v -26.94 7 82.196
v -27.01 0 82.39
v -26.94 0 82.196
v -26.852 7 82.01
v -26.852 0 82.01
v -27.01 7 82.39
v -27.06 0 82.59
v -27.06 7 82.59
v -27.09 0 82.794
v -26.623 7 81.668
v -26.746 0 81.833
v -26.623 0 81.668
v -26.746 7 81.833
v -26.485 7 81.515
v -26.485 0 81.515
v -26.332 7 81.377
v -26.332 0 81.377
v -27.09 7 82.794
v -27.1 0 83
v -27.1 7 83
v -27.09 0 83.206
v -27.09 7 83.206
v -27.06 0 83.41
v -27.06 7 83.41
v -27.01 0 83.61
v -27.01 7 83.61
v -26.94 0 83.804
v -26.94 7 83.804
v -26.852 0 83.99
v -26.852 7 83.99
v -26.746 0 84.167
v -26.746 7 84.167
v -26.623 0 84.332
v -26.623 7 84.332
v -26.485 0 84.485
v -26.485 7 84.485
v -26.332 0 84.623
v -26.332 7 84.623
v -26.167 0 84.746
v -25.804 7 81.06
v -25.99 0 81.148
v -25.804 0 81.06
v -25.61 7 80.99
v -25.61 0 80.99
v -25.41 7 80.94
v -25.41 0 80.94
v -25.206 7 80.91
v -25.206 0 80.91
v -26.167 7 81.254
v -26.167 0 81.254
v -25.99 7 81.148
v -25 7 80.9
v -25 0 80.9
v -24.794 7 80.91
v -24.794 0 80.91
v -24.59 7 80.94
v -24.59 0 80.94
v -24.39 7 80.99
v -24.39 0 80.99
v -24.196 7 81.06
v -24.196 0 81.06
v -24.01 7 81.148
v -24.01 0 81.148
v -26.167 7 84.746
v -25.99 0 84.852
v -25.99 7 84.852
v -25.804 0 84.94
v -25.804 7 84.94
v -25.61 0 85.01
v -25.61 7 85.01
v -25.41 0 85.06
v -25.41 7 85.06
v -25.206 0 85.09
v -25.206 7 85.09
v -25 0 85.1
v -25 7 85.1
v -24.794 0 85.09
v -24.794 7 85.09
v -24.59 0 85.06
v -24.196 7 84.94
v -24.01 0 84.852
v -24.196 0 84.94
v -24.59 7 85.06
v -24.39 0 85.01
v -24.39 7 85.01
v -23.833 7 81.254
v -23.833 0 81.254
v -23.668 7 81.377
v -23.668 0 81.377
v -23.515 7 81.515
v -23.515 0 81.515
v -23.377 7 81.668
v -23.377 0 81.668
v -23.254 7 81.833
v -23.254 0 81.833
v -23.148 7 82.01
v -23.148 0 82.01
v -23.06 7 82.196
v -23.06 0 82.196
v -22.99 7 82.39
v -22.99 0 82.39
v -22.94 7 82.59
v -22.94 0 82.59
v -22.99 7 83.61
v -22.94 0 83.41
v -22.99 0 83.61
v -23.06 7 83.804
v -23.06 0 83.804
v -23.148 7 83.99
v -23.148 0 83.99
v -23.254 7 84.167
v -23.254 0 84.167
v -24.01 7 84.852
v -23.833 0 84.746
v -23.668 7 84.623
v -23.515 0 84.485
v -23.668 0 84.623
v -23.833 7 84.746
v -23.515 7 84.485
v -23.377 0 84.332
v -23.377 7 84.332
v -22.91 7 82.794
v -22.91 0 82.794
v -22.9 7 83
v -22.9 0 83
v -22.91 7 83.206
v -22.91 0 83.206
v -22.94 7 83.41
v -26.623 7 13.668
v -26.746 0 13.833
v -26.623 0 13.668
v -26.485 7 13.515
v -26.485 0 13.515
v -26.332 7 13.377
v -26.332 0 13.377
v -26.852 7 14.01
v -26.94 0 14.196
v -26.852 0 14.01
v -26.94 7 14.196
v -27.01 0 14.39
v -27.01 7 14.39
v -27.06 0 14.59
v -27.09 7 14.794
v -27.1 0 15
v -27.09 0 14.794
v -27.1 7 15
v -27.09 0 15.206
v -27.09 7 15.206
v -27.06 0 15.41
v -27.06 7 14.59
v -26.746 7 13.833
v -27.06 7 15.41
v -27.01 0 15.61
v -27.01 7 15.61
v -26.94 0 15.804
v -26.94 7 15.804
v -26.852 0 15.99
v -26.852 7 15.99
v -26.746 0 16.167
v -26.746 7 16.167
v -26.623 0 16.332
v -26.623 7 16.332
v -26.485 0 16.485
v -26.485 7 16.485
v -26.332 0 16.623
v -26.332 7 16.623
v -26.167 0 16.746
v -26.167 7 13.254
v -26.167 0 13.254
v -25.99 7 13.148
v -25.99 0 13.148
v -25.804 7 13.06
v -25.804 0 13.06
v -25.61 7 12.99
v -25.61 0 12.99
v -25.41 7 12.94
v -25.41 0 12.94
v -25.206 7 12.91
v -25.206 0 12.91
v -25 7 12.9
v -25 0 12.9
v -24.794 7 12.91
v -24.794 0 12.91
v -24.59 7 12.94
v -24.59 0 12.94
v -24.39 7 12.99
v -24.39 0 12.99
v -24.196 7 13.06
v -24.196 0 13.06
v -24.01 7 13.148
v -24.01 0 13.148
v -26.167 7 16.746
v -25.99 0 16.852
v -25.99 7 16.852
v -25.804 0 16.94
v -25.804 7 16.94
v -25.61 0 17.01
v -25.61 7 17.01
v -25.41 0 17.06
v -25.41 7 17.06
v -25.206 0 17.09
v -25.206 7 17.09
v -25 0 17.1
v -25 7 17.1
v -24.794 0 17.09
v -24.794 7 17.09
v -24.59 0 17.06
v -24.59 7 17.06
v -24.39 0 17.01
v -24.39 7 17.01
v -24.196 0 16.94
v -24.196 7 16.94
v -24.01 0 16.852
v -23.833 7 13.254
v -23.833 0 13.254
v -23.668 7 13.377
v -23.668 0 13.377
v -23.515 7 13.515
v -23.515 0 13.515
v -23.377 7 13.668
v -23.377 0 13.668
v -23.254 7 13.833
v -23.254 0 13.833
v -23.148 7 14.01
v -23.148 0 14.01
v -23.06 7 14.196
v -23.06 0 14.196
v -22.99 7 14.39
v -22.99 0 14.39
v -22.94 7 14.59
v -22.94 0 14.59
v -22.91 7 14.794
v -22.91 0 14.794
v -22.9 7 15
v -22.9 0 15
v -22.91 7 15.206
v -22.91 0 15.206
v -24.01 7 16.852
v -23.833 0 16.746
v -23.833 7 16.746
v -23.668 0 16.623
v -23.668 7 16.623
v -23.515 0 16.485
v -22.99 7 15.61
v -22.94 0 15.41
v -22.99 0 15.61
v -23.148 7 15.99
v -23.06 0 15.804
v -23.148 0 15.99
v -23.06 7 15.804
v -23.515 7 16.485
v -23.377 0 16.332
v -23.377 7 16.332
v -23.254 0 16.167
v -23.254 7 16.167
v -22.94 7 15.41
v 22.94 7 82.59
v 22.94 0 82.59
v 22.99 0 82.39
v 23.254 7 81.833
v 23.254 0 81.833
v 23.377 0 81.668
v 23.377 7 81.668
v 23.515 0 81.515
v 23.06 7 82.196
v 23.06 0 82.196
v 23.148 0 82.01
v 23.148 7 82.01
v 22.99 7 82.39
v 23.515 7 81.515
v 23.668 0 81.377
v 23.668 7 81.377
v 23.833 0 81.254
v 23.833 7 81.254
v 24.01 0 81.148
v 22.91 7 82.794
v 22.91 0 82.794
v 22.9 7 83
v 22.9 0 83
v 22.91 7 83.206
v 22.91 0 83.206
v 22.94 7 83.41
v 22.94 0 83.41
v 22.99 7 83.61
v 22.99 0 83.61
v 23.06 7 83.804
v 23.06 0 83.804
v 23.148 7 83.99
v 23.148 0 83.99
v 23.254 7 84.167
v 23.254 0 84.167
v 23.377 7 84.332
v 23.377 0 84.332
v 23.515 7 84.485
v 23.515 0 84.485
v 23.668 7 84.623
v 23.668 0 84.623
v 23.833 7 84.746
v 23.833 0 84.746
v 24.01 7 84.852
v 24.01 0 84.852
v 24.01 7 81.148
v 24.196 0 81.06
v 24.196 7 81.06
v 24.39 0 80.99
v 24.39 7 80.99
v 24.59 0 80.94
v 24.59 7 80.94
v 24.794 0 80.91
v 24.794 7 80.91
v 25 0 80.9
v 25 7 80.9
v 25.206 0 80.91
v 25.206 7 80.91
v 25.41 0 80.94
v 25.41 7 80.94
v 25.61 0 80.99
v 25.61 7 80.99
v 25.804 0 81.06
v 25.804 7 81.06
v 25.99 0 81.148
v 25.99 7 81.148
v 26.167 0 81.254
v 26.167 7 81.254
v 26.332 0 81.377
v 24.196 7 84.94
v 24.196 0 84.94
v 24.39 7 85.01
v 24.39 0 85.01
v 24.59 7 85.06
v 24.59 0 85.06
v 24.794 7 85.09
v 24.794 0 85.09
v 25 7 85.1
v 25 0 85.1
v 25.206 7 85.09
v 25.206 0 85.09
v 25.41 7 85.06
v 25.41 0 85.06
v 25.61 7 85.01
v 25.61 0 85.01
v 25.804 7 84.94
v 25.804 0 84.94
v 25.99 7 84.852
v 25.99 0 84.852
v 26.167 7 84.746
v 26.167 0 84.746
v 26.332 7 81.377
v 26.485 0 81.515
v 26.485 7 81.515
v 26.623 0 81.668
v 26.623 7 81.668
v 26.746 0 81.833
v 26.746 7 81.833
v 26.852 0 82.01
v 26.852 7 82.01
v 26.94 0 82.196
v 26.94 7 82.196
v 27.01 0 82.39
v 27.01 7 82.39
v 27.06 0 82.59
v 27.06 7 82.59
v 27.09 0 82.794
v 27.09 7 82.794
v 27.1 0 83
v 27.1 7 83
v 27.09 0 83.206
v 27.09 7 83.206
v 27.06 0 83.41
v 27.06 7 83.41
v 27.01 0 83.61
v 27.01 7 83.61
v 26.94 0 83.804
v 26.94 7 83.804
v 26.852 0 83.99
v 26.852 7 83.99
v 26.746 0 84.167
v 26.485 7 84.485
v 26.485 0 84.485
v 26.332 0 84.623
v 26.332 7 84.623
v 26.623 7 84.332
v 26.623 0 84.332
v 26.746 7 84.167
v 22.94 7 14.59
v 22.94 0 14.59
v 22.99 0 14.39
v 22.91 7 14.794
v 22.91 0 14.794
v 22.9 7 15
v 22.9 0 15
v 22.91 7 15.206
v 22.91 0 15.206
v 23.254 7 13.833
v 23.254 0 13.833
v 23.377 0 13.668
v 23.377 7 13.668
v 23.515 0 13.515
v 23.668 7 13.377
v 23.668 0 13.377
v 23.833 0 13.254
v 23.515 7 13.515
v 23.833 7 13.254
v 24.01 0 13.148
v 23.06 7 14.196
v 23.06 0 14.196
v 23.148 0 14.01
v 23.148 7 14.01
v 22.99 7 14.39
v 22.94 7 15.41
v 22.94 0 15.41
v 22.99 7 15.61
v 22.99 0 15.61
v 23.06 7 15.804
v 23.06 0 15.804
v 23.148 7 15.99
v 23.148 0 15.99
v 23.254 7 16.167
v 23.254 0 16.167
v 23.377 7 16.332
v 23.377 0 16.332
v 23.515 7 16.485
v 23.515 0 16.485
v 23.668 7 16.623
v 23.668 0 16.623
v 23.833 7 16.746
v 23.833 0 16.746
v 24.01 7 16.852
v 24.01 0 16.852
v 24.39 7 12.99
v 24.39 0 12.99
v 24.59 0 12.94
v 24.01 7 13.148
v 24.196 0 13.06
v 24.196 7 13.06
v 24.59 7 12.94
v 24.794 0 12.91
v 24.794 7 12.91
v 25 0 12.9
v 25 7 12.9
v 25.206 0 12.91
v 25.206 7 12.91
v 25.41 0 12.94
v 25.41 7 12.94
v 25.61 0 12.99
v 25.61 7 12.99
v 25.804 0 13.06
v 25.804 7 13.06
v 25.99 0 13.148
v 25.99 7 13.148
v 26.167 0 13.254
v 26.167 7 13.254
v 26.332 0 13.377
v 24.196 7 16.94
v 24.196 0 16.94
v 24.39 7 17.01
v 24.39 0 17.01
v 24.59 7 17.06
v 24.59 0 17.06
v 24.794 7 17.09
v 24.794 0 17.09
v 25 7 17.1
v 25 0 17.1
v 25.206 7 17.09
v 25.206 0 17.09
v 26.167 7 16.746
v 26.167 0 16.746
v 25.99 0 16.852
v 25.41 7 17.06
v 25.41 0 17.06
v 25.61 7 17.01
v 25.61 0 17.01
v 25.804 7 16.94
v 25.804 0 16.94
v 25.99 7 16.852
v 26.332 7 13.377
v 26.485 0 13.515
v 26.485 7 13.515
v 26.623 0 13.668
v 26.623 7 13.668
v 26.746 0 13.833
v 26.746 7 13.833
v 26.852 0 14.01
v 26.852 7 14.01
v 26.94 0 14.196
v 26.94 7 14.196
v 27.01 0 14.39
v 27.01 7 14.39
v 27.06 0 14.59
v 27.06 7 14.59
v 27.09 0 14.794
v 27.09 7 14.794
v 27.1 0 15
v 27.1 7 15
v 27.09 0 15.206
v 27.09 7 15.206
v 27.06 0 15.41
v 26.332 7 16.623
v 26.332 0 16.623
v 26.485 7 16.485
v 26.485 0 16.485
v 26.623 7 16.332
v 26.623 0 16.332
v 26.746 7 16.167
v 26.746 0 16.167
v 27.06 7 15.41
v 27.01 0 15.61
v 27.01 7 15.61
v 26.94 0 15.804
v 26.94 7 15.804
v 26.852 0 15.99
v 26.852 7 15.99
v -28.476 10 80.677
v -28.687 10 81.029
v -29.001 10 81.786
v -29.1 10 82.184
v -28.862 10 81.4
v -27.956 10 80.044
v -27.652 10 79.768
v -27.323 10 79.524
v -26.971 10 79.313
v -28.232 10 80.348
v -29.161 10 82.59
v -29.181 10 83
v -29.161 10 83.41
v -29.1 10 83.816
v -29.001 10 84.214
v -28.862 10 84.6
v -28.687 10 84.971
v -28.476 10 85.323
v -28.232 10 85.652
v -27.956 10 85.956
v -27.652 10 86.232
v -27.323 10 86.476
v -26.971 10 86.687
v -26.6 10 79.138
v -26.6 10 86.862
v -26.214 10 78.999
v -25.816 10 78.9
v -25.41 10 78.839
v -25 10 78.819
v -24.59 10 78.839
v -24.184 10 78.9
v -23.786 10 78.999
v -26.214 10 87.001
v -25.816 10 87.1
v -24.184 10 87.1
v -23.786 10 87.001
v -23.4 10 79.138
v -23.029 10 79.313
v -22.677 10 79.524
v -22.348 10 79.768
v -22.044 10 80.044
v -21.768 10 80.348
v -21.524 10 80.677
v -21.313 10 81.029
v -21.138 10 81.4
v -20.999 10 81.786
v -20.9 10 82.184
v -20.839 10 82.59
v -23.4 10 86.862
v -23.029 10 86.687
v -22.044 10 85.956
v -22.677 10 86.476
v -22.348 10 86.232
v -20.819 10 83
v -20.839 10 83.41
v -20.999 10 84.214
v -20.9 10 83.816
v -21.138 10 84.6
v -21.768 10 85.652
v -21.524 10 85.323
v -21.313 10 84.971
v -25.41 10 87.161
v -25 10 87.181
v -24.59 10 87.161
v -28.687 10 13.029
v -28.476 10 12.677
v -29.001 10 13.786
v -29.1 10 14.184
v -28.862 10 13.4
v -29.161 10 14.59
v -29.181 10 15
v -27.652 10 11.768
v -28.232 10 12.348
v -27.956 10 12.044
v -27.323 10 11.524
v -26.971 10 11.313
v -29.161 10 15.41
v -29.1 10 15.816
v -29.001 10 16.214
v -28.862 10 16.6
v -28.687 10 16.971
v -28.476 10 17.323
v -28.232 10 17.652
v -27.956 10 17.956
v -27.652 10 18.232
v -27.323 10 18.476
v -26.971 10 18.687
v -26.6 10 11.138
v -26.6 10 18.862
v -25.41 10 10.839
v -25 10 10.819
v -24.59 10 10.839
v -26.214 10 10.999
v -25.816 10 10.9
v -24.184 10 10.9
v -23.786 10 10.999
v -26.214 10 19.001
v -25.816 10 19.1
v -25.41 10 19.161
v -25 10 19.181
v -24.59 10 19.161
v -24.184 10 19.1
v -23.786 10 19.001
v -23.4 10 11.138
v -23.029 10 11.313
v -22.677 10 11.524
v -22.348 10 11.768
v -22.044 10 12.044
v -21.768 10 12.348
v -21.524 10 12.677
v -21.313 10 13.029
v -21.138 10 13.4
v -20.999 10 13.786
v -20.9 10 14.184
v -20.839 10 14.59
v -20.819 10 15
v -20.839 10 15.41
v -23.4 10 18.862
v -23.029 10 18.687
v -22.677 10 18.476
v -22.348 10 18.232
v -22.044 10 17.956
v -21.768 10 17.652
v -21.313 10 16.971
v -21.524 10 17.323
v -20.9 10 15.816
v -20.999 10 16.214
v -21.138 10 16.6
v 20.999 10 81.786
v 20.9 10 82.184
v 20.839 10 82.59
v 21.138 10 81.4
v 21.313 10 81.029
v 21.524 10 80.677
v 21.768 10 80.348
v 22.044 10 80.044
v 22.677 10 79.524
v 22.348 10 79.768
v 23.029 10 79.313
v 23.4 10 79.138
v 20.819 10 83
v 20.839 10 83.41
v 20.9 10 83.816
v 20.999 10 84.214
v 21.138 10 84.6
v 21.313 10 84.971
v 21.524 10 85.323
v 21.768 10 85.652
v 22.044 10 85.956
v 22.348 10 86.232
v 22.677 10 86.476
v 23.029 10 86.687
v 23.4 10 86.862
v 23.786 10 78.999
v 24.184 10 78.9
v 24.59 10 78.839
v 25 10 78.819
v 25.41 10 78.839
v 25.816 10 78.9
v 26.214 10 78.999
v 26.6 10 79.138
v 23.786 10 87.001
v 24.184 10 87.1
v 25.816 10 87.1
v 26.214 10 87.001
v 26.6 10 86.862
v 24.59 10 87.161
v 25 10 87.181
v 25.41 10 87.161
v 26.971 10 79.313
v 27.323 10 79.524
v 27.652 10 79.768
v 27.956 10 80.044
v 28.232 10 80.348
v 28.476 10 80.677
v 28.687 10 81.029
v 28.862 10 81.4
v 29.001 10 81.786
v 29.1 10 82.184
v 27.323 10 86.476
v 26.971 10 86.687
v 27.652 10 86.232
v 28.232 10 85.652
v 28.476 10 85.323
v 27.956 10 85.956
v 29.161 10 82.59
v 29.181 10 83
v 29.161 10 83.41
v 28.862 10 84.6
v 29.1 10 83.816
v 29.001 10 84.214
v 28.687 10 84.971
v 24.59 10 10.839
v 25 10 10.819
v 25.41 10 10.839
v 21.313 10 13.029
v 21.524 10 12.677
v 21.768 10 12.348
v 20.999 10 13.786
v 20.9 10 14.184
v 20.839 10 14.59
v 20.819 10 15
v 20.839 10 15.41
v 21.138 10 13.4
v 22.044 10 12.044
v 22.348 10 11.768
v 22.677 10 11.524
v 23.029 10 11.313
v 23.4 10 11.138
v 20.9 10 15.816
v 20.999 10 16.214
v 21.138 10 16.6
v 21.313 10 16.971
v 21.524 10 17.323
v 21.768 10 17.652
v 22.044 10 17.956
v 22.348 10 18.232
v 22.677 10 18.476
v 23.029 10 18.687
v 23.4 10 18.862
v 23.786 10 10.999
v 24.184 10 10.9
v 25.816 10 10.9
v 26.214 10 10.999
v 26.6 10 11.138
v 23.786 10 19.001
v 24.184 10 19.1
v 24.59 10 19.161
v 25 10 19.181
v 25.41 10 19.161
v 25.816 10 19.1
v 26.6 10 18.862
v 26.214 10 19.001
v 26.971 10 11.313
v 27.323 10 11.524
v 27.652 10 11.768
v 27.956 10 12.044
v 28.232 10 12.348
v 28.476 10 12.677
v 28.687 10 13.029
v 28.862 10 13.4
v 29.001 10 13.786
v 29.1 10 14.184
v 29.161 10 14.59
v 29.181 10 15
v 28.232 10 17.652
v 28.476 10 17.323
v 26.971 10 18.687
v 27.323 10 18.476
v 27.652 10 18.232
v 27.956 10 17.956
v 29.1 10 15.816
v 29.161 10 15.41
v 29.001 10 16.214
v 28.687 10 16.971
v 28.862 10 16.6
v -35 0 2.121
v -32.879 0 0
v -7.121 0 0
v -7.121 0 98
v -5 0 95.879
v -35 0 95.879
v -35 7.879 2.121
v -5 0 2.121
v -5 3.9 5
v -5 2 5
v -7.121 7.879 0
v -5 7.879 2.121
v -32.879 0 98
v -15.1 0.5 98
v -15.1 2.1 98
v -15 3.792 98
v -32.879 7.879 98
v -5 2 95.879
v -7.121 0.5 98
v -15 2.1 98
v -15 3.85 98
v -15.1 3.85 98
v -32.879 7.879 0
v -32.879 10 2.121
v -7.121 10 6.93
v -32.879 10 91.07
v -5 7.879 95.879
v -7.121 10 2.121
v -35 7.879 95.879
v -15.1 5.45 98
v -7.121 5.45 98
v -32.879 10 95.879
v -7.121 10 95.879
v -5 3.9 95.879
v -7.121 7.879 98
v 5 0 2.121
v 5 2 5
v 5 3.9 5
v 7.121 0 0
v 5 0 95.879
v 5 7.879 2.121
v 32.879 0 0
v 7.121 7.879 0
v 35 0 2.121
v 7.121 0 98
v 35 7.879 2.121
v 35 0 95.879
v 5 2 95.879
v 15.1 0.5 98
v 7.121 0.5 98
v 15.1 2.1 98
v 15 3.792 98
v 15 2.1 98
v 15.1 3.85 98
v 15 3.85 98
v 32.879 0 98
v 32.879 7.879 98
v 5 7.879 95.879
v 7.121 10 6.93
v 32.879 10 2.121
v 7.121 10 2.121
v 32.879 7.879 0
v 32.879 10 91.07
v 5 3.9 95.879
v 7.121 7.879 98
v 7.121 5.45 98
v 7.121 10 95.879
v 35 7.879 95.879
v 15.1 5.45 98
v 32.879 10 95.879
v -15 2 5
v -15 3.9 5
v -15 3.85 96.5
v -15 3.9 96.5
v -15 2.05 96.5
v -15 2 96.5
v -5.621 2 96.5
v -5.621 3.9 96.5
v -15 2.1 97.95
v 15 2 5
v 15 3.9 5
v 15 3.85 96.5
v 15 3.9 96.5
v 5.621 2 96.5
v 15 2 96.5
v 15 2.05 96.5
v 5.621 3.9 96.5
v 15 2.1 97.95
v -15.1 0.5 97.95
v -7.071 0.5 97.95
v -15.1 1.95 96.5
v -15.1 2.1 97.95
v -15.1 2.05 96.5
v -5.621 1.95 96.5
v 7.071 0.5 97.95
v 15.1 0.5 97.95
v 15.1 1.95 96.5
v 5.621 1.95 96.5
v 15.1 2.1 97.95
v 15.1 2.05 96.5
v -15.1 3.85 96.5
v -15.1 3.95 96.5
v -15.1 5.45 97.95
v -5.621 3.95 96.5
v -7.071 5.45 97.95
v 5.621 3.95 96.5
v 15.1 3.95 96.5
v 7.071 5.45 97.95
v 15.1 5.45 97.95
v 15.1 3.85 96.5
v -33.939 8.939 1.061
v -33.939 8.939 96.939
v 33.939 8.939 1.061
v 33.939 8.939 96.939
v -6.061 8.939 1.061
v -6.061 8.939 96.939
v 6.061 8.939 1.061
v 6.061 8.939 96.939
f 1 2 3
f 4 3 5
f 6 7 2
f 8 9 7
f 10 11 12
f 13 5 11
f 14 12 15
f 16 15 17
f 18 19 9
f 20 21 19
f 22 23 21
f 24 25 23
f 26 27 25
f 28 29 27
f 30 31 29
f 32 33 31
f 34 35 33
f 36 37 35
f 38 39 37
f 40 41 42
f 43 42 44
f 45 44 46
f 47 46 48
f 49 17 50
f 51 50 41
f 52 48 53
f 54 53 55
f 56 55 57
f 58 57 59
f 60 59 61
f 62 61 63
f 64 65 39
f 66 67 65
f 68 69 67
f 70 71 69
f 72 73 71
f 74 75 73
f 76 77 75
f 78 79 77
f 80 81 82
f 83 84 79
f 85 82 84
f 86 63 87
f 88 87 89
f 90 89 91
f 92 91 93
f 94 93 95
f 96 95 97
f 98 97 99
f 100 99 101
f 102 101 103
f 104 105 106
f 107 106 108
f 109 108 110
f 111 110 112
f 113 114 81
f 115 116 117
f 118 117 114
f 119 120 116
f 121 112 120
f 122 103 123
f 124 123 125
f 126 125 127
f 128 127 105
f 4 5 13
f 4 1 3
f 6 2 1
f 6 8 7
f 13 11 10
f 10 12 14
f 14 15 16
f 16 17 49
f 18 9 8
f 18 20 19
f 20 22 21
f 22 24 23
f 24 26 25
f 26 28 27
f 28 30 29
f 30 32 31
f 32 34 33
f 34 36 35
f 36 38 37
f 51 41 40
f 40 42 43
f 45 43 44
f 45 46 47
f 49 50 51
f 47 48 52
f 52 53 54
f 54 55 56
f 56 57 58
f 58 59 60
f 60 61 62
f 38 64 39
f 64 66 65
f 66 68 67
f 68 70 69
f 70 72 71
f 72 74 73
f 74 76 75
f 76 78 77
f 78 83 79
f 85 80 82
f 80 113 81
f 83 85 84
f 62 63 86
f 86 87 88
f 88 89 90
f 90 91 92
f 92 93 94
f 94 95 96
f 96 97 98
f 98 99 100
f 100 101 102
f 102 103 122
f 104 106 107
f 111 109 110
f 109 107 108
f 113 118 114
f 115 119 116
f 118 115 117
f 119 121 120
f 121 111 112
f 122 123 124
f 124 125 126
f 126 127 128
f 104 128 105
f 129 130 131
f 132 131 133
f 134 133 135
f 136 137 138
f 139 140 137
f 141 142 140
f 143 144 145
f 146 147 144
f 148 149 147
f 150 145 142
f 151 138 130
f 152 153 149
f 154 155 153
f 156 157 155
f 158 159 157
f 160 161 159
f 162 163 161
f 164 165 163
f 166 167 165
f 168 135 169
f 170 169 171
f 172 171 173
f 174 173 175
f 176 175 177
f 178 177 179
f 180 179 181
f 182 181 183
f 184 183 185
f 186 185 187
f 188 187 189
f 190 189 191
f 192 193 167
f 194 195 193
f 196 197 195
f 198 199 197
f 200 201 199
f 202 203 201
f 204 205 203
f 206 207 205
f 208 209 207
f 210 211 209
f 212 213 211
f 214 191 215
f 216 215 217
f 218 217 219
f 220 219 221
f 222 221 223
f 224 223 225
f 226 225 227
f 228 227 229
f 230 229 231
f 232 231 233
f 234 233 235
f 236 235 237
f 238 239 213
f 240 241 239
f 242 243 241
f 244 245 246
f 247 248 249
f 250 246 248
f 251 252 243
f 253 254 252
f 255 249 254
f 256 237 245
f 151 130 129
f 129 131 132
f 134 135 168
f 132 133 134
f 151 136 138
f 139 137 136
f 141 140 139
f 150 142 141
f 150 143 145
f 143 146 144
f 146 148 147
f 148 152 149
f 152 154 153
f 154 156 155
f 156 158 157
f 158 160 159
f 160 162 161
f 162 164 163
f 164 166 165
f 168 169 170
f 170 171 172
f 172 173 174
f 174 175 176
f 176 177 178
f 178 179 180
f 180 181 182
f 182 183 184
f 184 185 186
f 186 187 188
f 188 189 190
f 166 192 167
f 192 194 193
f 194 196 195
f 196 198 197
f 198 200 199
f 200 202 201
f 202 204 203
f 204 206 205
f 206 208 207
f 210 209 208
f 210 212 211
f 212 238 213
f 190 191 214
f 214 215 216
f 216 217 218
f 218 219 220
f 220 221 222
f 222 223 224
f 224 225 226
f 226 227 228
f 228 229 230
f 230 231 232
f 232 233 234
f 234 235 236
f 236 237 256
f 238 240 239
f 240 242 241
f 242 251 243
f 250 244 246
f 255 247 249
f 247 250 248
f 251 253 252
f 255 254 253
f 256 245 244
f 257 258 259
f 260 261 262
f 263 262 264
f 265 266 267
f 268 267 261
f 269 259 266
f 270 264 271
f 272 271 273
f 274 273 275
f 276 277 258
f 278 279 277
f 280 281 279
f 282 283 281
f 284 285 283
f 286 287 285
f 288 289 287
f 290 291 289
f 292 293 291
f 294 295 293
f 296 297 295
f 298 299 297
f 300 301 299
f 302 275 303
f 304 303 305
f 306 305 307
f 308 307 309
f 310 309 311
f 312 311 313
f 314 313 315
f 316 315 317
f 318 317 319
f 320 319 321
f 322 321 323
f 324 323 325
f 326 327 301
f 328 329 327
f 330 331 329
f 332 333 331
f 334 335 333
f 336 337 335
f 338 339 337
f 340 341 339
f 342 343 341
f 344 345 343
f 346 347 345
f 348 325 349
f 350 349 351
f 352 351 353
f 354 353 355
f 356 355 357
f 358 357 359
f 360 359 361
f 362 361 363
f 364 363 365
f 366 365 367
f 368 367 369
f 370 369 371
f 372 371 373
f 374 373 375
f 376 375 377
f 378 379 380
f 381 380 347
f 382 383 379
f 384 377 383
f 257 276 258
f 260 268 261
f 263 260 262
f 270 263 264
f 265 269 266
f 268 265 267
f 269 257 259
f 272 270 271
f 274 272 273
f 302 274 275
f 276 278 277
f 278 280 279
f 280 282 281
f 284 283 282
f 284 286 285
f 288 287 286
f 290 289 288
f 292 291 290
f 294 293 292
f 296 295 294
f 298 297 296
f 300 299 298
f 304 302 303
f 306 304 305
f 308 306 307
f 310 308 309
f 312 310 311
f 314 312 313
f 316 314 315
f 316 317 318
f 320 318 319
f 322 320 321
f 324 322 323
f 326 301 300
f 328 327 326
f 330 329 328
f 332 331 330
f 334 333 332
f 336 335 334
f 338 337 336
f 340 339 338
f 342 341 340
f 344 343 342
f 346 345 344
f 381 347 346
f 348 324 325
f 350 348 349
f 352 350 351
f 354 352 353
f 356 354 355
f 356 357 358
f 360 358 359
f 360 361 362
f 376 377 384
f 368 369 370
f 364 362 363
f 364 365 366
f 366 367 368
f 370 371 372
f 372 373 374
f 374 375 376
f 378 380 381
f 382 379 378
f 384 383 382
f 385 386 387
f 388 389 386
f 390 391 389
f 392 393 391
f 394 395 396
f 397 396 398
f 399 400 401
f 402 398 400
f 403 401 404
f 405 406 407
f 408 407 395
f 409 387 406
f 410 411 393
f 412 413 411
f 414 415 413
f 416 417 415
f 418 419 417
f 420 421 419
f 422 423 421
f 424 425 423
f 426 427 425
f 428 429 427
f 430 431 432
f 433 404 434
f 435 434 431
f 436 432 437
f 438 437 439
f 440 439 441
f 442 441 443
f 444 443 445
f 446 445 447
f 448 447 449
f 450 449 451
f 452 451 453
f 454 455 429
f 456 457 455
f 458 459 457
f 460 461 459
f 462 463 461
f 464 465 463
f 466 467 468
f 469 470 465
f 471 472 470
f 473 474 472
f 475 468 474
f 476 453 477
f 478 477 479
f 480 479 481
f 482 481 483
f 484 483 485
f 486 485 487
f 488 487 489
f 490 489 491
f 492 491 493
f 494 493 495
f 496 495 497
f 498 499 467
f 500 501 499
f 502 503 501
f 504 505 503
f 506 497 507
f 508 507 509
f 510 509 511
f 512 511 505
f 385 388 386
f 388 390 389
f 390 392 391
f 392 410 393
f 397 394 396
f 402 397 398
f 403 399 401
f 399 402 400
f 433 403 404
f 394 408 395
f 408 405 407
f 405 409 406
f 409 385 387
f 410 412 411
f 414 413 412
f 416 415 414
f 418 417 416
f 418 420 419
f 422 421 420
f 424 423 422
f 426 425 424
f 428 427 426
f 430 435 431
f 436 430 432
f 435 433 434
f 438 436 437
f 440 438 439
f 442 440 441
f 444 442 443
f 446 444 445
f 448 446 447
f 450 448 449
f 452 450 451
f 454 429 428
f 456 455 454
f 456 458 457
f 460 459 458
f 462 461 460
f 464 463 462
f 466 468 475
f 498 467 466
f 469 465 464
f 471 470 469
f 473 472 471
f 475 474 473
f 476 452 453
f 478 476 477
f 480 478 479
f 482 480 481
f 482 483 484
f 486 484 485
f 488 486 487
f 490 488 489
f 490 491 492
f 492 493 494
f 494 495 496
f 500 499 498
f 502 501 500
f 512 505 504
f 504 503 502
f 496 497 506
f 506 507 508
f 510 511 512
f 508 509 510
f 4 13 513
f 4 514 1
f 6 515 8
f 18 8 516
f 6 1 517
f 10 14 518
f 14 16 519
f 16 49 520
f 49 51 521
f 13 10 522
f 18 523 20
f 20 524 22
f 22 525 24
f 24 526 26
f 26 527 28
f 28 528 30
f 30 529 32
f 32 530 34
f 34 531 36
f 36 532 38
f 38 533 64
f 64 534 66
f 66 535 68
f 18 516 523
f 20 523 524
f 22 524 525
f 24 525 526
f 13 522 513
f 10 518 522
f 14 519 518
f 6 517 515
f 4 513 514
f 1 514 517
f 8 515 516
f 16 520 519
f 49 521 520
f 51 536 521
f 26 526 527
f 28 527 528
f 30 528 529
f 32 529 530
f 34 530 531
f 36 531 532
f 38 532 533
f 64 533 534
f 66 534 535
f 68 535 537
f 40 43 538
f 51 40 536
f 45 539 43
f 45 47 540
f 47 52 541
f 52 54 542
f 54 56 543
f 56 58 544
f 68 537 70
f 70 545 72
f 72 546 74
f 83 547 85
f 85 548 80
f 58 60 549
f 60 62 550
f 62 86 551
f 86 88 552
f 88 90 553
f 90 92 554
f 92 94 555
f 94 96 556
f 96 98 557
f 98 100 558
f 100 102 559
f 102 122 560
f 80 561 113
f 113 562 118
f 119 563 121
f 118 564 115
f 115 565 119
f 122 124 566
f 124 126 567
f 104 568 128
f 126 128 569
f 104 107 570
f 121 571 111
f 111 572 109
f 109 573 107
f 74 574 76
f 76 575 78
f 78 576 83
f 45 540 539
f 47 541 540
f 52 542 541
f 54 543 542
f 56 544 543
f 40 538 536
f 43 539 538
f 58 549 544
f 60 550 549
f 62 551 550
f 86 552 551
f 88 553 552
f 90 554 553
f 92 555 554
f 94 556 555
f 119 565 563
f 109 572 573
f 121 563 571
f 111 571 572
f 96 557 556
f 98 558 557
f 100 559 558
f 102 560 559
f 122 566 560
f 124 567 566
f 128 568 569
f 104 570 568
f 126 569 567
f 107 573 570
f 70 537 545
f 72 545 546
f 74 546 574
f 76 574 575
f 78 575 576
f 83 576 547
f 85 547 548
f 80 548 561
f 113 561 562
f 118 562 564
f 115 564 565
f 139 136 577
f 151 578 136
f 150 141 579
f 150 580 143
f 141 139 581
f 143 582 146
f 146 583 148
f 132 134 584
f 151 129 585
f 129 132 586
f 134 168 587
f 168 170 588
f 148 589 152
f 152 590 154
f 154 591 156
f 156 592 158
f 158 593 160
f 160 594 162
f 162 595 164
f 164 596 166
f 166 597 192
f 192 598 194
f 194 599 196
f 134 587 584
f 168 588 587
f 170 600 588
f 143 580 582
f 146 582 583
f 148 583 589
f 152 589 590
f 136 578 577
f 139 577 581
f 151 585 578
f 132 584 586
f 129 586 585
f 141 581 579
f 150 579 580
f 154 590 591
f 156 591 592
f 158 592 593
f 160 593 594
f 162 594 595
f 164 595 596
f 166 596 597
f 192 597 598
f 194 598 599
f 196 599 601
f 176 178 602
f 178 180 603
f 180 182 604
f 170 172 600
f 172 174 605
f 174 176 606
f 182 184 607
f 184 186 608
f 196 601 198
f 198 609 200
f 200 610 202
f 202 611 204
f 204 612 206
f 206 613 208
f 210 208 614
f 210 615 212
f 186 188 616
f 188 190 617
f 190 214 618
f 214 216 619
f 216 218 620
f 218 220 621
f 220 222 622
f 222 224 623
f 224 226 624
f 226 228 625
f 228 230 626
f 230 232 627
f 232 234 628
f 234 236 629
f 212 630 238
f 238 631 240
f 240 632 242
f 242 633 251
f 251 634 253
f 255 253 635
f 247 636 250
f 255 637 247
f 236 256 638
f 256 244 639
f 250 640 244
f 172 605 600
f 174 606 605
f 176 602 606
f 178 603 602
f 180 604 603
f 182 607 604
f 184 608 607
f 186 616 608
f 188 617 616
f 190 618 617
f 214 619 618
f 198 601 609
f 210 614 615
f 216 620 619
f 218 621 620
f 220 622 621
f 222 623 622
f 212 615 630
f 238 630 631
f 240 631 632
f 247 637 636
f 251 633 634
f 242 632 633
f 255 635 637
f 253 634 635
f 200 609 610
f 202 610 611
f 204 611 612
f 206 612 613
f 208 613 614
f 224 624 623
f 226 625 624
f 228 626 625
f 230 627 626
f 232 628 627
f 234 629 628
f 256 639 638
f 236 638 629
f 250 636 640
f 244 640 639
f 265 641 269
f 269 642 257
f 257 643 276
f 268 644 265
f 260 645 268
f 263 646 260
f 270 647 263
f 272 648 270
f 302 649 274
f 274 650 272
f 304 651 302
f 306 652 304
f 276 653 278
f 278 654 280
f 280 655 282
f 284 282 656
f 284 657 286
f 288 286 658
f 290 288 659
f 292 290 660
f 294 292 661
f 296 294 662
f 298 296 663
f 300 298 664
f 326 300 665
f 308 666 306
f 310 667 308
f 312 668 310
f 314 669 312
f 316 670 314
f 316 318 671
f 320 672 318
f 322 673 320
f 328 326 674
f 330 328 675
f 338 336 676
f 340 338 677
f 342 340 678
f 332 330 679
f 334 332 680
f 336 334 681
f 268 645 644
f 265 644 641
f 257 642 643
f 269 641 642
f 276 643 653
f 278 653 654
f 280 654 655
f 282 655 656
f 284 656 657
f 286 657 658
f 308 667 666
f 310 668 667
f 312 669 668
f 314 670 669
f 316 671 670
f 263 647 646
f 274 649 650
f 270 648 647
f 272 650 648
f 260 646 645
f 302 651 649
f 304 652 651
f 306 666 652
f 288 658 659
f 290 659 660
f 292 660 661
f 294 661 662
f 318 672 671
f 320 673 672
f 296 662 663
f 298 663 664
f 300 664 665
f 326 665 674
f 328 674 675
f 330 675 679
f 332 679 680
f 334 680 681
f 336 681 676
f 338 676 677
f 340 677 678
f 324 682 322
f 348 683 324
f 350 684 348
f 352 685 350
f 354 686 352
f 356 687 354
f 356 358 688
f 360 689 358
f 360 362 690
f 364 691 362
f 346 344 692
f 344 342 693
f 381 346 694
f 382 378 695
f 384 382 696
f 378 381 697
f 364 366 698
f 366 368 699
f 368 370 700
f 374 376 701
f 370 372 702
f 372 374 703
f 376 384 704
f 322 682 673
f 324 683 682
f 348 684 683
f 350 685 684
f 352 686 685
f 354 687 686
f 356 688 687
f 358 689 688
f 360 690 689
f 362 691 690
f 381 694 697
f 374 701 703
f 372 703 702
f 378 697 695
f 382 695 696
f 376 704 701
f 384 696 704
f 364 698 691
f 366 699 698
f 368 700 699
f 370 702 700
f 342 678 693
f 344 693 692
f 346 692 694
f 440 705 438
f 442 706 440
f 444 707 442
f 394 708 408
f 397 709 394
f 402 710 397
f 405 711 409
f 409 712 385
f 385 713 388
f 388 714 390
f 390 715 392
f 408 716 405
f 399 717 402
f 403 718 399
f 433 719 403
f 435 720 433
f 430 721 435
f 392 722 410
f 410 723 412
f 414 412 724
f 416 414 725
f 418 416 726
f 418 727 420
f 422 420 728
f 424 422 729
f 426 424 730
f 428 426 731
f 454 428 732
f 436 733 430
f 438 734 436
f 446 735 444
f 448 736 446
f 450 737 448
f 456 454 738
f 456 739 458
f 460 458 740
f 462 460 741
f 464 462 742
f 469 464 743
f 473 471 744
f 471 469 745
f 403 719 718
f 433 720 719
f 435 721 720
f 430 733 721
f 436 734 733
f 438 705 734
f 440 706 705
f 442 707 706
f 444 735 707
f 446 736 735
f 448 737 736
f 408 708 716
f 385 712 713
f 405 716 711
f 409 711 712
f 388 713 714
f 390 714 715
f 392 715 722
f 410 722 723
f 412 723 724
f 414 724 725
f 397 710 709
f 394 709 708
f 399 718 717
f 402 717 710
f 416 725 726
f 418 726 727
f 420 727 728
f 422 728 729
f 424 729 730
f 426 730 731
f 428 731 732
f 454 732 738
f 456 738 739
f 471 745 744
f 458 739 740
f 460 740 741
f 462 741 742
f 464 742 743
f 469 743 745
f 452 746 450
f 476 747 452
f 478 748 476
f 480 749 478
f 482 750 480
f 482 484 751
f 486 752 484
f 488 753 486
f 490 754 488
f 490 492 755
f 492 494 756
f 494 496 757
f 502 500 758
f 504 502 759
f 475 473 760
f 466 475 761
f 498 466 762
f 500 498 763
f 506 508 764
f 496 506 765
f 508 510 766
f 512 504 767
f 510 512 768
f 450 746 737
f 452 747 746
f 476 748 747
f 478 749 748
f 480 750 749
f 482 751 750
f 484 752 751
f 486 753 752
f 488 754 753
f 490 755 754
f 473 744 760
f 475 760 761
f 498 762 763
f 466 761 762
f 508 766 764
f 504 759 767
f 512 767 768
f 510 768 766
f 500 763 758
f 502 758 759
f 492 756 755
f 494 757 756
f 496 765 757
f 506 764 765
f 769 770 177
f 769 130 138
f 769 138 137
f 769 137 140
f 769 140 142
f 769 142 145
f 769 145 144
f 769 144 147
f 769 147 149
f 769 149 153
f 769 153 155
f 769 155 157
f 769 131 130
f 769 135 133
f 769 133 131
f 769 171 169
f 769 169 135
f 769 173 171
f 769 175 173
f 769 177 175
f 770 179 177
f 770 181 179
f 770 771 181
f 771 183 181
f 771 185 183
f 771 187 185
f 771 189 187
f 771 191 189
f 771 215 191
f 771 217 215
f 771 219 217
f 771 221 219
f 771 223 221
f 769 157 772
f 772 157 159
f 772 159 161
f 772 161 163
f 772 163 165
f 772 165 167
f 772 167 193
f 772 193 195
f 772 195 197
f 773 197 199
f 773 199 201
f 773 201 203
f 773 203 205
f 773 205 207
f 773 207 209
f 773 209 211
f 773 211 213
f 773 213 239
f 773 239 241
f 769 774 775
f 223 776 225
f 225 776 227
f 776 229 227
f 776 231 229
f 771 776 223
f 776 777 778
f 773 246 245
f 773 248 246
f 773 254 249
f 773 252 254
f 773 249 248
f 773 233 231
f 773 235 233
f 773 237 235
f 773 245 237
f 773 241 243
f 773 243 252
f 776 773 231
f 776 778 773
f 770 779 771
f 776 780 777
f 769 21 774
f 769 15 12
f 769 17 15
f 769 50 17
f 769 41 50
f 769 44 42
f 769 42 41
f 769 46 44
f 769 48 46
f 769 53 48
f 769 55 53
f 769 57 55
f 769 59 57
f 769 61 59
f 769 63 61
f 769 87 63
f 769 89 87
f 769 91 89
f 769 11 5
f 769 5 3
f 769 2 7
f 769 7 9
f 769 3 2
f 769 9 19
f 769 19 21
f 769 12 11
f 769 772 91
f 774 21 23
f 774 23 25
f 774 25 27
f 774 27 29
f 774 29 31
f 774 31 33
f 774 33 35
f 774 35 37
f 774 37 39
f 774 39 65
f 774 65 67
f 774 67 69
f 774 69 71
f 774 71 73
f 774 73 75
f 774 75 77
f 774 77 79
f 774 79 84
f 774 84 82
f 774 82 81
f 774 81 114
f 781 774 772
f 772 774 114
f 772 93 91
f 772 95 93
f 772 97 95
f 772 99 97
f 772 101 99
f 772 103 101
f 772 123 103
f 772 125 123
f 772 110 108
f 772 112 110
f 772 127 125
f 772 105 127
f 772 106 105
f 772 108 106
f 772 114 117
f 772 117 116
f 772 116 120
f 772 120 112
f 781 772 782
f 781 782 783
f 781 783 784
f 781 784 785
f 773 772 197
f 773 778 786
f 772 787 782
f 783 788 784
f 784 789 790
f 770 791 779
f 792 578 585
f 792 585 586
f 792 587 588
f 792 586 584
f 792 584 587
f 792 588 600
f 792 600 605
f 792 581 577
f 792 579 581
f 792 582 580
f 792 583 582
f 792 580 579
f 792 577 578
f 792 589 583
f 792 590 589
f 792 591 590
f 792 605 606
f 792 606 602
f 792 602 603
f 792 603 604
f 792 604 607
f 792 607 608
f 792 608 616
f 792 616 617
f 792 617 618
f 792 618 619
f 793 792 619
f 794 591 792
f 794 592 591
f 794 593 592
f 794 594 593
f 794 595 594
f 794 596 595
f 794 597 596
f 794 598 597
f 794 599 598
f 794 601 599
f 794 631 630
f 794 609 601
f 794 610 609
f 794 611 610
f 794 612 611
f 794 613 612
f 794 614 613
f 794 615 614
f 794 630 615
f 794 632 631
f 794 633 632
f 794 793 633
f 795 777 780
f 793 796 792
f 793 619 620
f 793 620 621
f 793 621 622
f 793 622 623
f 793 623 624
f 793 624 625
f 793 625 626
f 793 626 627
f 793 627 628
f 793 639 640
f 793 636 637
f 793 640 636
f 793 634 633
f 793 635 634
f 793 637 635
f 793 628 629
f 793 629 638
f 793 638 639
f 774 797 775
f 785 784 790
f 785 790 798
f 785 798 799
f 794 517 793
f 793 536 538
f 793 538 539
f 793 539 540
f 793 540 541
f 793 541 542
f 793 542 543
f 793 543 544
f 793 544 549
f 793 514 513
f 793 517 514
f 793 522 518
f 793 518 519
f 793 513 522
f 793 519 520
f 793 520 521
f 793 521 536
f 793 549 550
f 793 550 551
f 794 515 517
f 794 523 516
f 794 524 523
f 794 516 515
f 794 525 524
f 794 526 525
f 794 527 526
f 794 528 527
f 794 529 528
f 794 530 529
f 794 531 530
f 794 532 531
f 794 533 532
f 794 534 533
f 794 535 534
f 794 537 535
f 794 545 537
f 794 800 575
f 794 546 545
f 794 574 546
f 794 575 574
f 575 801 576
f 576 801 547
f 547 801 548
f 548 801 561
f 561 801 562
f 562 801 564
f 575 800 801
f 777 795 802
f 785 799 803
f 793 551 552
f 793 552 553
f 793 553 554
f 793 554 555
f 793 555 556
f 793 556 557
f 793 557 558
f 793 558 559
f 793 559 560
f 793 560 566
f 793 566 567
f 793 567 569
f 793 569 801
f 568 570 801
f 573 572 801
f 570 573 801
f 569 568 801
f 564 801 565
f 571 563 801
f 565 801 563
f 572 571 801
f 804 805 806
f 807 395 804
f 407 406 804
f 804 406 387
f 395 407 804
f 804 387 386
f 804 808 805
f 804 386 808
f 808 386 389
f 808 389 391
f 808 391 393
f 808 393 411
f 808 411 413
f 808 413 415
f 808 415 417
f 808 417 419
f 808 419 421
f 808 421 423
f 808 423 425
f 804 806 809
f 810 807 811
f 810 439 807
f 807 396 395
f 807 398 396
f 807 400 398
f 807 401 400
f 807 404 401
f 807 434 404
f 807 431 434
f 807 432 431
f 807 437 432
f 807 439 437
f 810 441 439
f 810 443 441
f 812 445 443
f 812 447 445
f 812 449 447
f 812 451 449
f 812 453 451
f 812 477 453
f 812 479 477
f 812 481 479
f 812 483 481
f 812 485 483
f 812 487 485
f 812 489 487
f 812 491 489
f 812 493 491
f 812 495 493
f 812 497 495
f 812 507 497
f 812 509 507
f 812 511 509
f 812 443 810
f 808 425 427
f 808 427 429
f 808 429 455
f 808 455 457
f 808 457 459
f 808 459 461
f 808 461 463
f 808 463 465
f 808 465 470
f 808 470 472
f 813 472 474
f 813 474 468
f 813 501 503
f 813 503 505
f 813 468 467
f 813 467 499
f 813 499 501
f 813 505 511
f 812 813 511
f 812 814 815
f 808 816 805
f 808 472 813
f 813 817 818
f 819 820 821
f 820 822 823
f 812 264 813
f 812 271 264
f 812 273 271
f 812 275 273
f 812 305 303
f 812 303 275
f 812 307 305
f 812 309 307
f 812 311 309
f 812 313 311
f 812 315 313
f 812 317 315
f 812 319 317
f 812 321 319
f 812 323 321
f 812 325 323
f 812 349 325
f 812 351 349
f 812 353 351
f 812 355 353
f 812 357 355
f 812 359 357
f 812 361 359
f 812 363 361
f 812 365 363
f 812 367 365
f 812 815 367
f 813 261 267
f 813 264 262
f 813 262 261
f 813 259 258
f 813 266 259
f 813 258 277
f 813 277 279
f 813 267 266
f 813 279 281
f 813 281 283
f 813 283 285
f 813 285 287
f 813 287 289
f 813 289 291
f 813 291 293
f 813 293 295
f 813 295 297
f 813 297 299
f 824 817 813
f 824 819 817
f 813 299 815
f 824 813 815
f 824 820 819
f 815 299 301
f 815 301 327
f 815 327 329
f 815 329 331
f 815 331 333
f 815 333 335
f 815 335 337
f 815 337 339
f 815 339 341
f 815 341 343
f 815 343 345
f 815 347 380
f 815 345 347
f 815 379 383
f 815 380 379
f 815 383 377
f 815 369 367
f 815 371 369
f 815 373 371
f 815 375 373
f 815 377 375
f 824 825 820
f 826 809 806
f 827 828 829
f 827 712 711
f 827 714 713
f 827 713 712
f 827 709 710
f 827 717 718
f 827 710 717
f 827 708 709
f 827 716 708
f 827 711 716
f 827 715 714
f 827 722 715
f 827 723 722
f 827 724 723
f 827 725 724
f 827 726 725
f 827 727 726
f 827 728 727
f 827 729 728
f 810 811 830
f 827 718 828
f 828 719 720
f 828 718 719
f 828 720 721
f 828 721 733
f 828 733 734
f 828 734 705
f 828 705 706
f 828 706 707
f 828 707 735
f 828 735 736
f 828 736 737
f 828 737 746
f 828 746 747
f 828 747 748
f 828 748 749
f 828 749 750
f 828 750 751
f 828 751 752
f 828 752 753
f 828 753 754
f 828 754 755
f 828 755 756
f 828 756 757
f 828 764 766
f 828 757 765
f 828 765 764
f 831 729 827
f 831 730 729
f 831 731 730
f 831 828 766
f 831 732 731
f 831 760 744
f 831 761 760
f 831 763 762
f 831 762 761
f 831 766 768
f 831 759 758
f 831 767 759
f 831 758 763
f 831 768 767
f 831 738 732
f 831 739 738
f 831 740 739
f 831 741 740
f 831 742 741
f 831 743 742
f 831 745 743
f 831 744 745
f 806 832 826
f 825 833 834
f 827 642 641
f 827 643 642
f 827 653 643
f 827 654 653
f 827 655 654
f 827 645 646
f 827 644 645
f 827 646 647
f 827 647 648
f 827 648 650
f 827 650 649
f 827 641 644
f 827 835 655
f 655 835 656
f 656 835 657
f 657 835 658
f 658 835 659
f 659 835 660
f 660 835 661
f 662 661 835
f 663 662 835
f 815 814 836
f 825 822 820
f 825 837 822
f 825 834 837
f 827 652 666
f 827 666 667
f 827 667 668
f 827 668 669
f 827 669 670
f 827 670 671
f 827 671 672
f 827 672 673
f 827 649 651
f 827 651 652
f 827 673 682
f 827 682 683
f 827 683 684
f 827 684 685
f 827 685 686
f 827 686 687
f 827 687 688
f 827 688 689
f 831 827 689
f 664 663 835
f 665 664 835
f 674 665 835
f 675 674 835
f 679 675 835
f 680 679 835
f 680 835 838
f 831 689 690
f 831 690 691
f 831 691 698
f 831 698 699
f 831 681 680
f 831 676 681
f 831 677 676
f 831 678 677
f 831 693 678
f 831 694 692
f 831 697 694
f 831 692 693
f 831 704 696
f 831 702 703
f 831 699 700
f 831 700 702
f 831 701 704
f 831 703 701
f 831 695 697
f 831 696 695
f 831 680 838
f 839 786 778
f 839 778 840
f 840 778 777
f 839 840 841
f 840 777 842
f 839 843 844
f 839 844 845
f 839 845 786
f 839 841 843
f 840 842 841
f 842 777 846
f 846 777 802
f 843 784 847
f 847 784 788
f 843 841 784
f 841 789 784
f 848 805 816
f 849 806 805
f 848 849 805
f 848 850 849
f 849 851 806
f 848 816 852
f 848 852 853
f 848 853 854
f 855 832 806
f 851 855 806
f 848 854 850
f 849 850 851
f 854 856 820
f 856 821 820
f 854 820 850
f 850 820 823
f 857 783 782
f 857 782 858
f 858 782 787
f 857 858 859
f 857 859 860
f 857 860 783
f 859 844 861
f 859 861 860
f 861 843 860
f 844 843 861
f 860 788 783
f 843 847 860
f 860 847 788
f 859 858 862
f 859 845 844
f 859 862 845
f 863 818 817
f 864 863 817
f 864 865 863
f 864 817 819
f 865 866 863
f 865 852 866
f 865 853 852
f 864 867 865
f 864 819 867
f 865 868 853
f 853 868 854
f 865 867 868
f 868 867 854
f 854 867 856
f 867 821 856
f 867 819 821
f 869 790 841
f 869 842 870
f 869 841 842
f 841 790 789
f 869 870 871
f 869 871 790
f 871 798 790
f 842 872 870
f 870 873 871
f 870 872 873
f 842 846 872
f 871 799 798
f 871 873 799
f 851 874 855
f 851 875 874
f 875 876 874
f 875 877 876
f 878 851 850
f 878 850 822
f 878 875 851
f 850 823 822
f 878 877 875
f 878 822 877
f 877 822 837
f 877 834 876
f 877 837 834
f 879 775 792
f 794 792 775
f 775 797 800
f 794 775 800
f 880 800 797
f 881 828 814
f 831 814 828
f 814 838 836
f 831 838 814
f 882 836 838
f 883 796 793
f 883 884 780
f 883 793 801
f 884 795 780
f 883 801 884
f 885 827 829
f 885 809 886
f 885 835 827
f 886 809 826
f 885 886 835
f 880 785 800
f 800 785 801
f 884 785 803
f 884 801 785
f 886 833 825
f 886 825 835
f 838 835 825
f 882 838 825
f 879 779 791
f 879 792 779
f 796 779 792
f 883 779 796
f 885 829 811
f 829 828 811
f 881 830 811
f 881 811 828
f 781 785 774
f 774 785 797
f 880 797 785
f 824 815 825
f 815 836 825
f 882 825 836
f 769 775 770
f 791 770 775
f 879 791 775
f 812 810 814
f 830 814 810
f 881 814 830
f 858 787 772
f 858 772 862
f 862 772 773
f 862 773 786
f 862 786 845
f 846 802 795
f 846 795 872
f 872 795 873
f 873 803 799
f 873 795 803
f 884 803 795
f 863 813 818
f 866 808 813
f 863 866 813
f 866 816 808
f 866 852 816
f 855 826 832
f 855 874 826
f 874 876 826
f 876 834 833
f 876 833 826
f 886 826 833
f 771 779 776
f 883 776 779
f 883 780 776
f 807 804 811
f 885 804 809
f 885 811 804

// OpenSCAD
/*
   MantaFoils Takeoff Standard Charger Wall Mount
   File: Mantafoils-Takeoff-Standar-Charger-Mount.scad
   Version: v0.13 (2026-06-28)
   License: MIT License

   A fully parametric, 3D-printable wall mount for the MantaFoils Takeoff Standard Charger.
   The mount consists of two mirrored pieces that screw vertically to the wall. The charger's
   ears slide into vertical slots that are open at the top and closed at the bottom, allowing
   for easy, tool-free mounting and removal of the charger.

   Changelog:
   - v0.01: Initial design with basic slot bevels and screw countersinks.
   - v0.02: Rethought and optimized bevels using mathematically precise 2D extruded polygons.
            Introduced a large front bevel, a safe non-breaking back bevel, and a major
            left-to-right body centering funnel (inner-top bevel). Added inner-front vertical chamfer.
   - v0.03: Removed wall-facing (Y=0) chamfers on the outer corners/edges to ensure the back
            of the mount remains a perfectly flat plane, maximizing flush contact with the wall.
   - v0.04: Set default slot_bottom_offset to 5.0mm. Created a comprehensive 3D self-centering
            sliding entry system by adding an outer-slot bevel (X-axis flare), enlarging the
            inner-top bevel to 4.0mm, making the front bevel more gradual (10mm height), and
            increasing clearances for frictionless insertion.
   - v0.05: Solved a coordinate translation bug where previous bevels were rendered below the print bed.
            Redesigned all entry bevels using a native-axis hull() system, ensuring they are
            exactly at the top of the mount, 100% visible, and mathematically robust.
   - v0.06: Connected sidewards, frontwards, and backwards leaning bevels into a single, seamless,
            smooth 3D hopper funnel. Removed all 90-degree internal corner seams from the entry pocket
            by utilizing a combined top-to-bottom hull of the pocket boundary.
   - v0.07: Simplified entry system. Removed all 3D funnels and added a simple 45-degree
            bevel on the back and front upper horizontal edges of the slot.
   - v0.08: Added horizontal side-edge chamfers back to the top and bottom of the outer side face,
            while keeping the back vertical wall-mounting plane perfectly flat.
   - v0.09: Added horizontal side-edge chamfers to the top and bottom of the inner side face (X=0)
            as well, achieving complete 3D symmetry while maintaining a flat mounting backplane.
   - v0.10: Changed default slot depth to exactly 10.0mm (ear_extension = 8.5mm, slot_clearance_extension = 1.5mm).
            Screws and visualization scale automatically.
   - v0.11: Removed console-based validation checks and warning echo outputs to keep the console output clean.
   - v0.12: Swapped meanings of "both" and "layout". "both" now shows the side-by-side printable
            objects, while "layout" shows the installed view with the charger mockup.
   - v0.13: Removed author attribution and updated license to MIT License.

   Printing Instructions:
   - Print standing up (Z-axis vertical).
   - Designed to be printed with ZERO supports.
   - Recommended settings: 3+ perimeters, 20%+ gyroid infill, PETG/ABS/ASA for durability.
*/

// --- CUSTOMIZER PARAMETERS ---

/* [ Part Selection ] */
// Which part of the wall mount to render
part = "both"; // [both: Printable Layout (Side-by-Side), left: Left Mount Only, right: Right Mount Only, layout: Installed View with Charger]

// Show a transparent visualization of the charger in the "layout" (Installed) view
show_charger = true;

/* [ Charger Dimensions ] */
// Length of the main aluminum case (excluding ears) in mm
charger_length = 205.0;

// Height of the charger body in mm
charger_height = 104.0;

// Depth of the charger body in mm
charger_depth = 60.0;

/* [ Ear Dimensions ] */
// Thickness of the mounting ears in mm
ear_thickness = 1.2;

// Height of the mounting ears in mm
ear_height = 88.0;

// How far each ear extends outwards from the case sides in mm (overall length 231mm - case 205mm) / 2 = 13mm. Defaulting to 8.5mm here to make slot_depth exactly 10.0mm.
ear_extension = 8.5;

// Offset of the ear from the back of the charger body in mm (0 means flush with the back)
ear_offset_y = 0.0;

/* [ Bevels & Lead-ins ] */
// Size of the simple 45-degree entry bevel on the back and front upper horizontal edges of the slot in mm
slot_bevel = 1.5;

/* [ Wall Mount Dimensions ] */
// Thickness of the mount piece protruding from the wall in mm
mount_thickness = 10.0;

// Total width of each mount piece in mm (must be larger than ear_extension + clearance)
mount_width = 30.0;

// Total height of the mount piece in mm (should be larger than ear_height + slot_bottom_offset)
mount_height = 98.0;

// Offset from the bottom of the mount to the bottom of the slot in mm (solid support base)
slot_bottom_offset = 5.0;

// Offset from the wall to the back of the slot in mm (creates a protective wall-clearance layer)
slot_wall_clearance = 2.0;

/* [ Mounting Screws ] */
// Diameter of the screw shaft in mm (4.2mm is ideal for a loose fit on 4.0mm wood screws)
screw_shaft_dia = 4.2;

// Outer diameter of the countersink head in mm (standard 4mm wood screw head is ~8mm)
screw_head_dia = 8.5;

// Depth of the countersink head in mm
screw_countersink_depth = 3.0;

// Z-offset for the screw holes from the top and bottom of the mount in mm
screw_offset_z = 15.0;

/* [ Tolerances & Clearances ] */
// Extra width added to the slot in the Y-direction (thickness clearance)
slot_clearance_thickness = 0.7;

// Extra depth added to the slot in the X-direction (extension clearance)
slot_clearance_extension = 1.5;

// Extra clearance added to the slot bottom (Z-axis clearance)
slot_clearance_bottom = 0.5;

// Resolution of cylindrical cuts (higher is smoother)
$fn = 64;


// --- CALCULATED VALUES ---

slot_depth = ear_extension + slot_clearance_extension;
slot_thickness = ear_thickness + slot_clearance_thickness;
slot_y = slot_wall_clearance + ear_offset_y;

// Position the screws centered in the remaining solid outer flange
screw_x = -mount_width + (mount_width - slot_depth) / 2;


// --- MAIN RENDERING LOGIC ---

if (part == "left") {
    mount_left();
} else if (part == "right") {
    // Mirrored left mount along the X-axis
    mirror([1, 0, 0]) mount_left();
} else if (part == "both") {
    // Lay both parts flat on the print bed side-by-side with a 10mm clearance gap (ready to print both)
    translate([-5, 0, 0])
        mount_left();

    translate([5, 0, 0])
        mirror([1, 0, 0])
        mount_left();
} else if (part == "layout") {
    // Left mount at its installed position (X = 0 is the inner boundary)
    mount_left();

    // Right mount at its installed position (X = charger_length is the inner boundary)
    translate([charger_length, 0, 0])
        mirror([1, 0, 0])
        mount_left();

    // Optional transparent charger visualization
    if (show_charger) {
        charger_visualization();
    }
}


// --- MODULE DEFINITIONS ---

// Renders the left mount piece (with inner face at X = 0, extending to X = -mount_width)
module mount_left() {
    difference() {
        // 1. Main mount block
        translate([-mount_width, 0, 0])
            cube([mount_width, mount_thickness, mount_height]);

        // 2. The sliding slot (open at top, closed at bottom)
        translate([-slot_depth, slot_y, slot_bottom_offset])
            cube([slot_depth + 0.1, slot_thickness, mount_height - slot_bottom_offset + 0.1]);

        // 3. Simple 45-degree Slot Entry Bevels on the back and front upper horizontal edges
        // Back edge bevel
        hull() {
            translate([-slot_depth - 0.1, slot_y - slot_bevel, mount_height - 0.05])
                cube([slot_depth + 0.2, slot_bevel + 0.1, 0.1]);
            translate([-slot_depth - 0.1, slot_y - 0.05, mount_height - slot_bevel])
                cube([slot_depth + 0.2, 0.1, 0.1]);
        }

        // Front edge bevel
        hull() {
            translate([-slot_depth - 0.1, slot_y + slot_thickness - 0.05, mount_height - 0.05])
                cube([slot_depth + 0.2, slot_bevel + 0.1, 0.1]);
            translate([-slot_depth - 0.1, slot_y + slot_thickness - 0.05, mount_height - slot_bevel])
                cube([slot_depth + 0.2, 0.1, 0.1]);
        }

        // 4. Mounting screw holes (2x countersunk wood screws)
        translate([screw_x, 0, screw_offset_z])
            screw_hole();

        translate([screw_x, 0, mount_height - screw_offset_z])
            screw_hole();

        // 5. Aesthetic and functional chamfers on FRONT & horizontal SIDE edges
        // Outer-front vertical corner (rounds the main outer front vertical edge)
        translate([-mount_width, mount_thickness, mount_height / 2])
            rotate([0, 0, 45])
            cube([3, 3, mount_height + 0.2], center = true);

        // Inner-front vertical corner (rounds the corner facing the user next to the charger)
        translate([0, mount_thickness, mount_height / 2])
            rotate([0, 0, 45])
            cube([3, 3, mount_height + 0.2], center = true);

        // Top-front horizontal edge (rounds the top front edge)
        translate([-mount_width / 2, mount_thickness, mount_height])
            rotate([45, 0, 0])
            cube([mount_width + 0.2, 3, 3], center = true);

        // Bottom-front horizontal edge (rounds the bottom front edge)
        translate([-mount_width / 2, mount_thickness, 0])
            rotate([-45, 0, 0])
            cube([mount_width + 0.2, 3, 3], center = true);

        // Top-outer horizontal edge (rounds the top horizontal outer-side edge)
        translate([-mount_width, mount_thickness / 2, mount_height])
            rotate([0, 45, 0])
            cube([3, mount_thickness + 0.2, 3], center = true);

        // Bottom-outer horizontal edge (rounds the bottom horizontal outer-side edge)
        translate([-mount_width, mount_thickness / 2, 0])
            rotate([0, -45, 0])
            cube([3, mount_thickness + 0.2, 3], center = true);

        // Top-inner horizontal edge (rounds the top horizontal inner-side edge)
        translate([0, mount_thickness / 2, mount_height])
            rotate([0, 45, 0])
            cube([3, mount_thickness + 0.2, 3], center = true);

        // Bottom-inner horizontal edge (rounds the bottom horizontal inner-side edge)
        translate([0, mount_thickness / 2, 0])
            rotate([0, -45, 0])
            cube([3, mount_thickness + 0.2, 3], center = true);
    }
}

// Helper module for a countersunk screw hole oriented to go from front to back (Y-axis)
module screw_hole() {
    rotate([-90, 0, 0]) {
        // Main shaft hole (goes all the way through)
        translate([0, 0, -0.1])
            cylinder(d = screw_shaft_dia, h = mount_thickness + 0.2);

        // Countersink cone (recessed into the front face of the mount)
        translate([0, 0, mount_thickness - screw_countersink_depth])
            cylinder(d1 = screw_shaft_dia, d2 = screw_head_dia, h = screw_countersink_depth + 0.1);
    }
}

// Transparent visualization of the MantaFoils Charger to verify fitment and clearances
module charger_visualization() {
    // Align charger positions based on clearances
    charger_back_y = slot_wall_clearance + ear_offset_y + slot_clearance_thickness / 2;
    charger_bottom_z = slot_bottom_offset + slot_clearance_bottom;

    // Transparent gray for charger body
    color([0.5, 0.5, 0.5, 0.4]) {
        // Extruded aluminum case body
        translate([0, charger_back_y, charger_bottom_z])
            cube([charger_length, charger_depth, charger_height]);
    }

    // Transparent teal/blue for the ears to make them distinct
    color([0.0, 0.6, 0.8, 0.6]) {
        // Left mounting ear
        translate([-ear_extension, charger_back_y, charger_bottom_z])
            cube([ear_extension, ear_thickness, ear_height]);

        // Right mounting ear
        translate([charger_length, charger_back_y, charger_bottom_z])
            cube([ear_extension, ear_thickness, ear_height]);
    }
}
